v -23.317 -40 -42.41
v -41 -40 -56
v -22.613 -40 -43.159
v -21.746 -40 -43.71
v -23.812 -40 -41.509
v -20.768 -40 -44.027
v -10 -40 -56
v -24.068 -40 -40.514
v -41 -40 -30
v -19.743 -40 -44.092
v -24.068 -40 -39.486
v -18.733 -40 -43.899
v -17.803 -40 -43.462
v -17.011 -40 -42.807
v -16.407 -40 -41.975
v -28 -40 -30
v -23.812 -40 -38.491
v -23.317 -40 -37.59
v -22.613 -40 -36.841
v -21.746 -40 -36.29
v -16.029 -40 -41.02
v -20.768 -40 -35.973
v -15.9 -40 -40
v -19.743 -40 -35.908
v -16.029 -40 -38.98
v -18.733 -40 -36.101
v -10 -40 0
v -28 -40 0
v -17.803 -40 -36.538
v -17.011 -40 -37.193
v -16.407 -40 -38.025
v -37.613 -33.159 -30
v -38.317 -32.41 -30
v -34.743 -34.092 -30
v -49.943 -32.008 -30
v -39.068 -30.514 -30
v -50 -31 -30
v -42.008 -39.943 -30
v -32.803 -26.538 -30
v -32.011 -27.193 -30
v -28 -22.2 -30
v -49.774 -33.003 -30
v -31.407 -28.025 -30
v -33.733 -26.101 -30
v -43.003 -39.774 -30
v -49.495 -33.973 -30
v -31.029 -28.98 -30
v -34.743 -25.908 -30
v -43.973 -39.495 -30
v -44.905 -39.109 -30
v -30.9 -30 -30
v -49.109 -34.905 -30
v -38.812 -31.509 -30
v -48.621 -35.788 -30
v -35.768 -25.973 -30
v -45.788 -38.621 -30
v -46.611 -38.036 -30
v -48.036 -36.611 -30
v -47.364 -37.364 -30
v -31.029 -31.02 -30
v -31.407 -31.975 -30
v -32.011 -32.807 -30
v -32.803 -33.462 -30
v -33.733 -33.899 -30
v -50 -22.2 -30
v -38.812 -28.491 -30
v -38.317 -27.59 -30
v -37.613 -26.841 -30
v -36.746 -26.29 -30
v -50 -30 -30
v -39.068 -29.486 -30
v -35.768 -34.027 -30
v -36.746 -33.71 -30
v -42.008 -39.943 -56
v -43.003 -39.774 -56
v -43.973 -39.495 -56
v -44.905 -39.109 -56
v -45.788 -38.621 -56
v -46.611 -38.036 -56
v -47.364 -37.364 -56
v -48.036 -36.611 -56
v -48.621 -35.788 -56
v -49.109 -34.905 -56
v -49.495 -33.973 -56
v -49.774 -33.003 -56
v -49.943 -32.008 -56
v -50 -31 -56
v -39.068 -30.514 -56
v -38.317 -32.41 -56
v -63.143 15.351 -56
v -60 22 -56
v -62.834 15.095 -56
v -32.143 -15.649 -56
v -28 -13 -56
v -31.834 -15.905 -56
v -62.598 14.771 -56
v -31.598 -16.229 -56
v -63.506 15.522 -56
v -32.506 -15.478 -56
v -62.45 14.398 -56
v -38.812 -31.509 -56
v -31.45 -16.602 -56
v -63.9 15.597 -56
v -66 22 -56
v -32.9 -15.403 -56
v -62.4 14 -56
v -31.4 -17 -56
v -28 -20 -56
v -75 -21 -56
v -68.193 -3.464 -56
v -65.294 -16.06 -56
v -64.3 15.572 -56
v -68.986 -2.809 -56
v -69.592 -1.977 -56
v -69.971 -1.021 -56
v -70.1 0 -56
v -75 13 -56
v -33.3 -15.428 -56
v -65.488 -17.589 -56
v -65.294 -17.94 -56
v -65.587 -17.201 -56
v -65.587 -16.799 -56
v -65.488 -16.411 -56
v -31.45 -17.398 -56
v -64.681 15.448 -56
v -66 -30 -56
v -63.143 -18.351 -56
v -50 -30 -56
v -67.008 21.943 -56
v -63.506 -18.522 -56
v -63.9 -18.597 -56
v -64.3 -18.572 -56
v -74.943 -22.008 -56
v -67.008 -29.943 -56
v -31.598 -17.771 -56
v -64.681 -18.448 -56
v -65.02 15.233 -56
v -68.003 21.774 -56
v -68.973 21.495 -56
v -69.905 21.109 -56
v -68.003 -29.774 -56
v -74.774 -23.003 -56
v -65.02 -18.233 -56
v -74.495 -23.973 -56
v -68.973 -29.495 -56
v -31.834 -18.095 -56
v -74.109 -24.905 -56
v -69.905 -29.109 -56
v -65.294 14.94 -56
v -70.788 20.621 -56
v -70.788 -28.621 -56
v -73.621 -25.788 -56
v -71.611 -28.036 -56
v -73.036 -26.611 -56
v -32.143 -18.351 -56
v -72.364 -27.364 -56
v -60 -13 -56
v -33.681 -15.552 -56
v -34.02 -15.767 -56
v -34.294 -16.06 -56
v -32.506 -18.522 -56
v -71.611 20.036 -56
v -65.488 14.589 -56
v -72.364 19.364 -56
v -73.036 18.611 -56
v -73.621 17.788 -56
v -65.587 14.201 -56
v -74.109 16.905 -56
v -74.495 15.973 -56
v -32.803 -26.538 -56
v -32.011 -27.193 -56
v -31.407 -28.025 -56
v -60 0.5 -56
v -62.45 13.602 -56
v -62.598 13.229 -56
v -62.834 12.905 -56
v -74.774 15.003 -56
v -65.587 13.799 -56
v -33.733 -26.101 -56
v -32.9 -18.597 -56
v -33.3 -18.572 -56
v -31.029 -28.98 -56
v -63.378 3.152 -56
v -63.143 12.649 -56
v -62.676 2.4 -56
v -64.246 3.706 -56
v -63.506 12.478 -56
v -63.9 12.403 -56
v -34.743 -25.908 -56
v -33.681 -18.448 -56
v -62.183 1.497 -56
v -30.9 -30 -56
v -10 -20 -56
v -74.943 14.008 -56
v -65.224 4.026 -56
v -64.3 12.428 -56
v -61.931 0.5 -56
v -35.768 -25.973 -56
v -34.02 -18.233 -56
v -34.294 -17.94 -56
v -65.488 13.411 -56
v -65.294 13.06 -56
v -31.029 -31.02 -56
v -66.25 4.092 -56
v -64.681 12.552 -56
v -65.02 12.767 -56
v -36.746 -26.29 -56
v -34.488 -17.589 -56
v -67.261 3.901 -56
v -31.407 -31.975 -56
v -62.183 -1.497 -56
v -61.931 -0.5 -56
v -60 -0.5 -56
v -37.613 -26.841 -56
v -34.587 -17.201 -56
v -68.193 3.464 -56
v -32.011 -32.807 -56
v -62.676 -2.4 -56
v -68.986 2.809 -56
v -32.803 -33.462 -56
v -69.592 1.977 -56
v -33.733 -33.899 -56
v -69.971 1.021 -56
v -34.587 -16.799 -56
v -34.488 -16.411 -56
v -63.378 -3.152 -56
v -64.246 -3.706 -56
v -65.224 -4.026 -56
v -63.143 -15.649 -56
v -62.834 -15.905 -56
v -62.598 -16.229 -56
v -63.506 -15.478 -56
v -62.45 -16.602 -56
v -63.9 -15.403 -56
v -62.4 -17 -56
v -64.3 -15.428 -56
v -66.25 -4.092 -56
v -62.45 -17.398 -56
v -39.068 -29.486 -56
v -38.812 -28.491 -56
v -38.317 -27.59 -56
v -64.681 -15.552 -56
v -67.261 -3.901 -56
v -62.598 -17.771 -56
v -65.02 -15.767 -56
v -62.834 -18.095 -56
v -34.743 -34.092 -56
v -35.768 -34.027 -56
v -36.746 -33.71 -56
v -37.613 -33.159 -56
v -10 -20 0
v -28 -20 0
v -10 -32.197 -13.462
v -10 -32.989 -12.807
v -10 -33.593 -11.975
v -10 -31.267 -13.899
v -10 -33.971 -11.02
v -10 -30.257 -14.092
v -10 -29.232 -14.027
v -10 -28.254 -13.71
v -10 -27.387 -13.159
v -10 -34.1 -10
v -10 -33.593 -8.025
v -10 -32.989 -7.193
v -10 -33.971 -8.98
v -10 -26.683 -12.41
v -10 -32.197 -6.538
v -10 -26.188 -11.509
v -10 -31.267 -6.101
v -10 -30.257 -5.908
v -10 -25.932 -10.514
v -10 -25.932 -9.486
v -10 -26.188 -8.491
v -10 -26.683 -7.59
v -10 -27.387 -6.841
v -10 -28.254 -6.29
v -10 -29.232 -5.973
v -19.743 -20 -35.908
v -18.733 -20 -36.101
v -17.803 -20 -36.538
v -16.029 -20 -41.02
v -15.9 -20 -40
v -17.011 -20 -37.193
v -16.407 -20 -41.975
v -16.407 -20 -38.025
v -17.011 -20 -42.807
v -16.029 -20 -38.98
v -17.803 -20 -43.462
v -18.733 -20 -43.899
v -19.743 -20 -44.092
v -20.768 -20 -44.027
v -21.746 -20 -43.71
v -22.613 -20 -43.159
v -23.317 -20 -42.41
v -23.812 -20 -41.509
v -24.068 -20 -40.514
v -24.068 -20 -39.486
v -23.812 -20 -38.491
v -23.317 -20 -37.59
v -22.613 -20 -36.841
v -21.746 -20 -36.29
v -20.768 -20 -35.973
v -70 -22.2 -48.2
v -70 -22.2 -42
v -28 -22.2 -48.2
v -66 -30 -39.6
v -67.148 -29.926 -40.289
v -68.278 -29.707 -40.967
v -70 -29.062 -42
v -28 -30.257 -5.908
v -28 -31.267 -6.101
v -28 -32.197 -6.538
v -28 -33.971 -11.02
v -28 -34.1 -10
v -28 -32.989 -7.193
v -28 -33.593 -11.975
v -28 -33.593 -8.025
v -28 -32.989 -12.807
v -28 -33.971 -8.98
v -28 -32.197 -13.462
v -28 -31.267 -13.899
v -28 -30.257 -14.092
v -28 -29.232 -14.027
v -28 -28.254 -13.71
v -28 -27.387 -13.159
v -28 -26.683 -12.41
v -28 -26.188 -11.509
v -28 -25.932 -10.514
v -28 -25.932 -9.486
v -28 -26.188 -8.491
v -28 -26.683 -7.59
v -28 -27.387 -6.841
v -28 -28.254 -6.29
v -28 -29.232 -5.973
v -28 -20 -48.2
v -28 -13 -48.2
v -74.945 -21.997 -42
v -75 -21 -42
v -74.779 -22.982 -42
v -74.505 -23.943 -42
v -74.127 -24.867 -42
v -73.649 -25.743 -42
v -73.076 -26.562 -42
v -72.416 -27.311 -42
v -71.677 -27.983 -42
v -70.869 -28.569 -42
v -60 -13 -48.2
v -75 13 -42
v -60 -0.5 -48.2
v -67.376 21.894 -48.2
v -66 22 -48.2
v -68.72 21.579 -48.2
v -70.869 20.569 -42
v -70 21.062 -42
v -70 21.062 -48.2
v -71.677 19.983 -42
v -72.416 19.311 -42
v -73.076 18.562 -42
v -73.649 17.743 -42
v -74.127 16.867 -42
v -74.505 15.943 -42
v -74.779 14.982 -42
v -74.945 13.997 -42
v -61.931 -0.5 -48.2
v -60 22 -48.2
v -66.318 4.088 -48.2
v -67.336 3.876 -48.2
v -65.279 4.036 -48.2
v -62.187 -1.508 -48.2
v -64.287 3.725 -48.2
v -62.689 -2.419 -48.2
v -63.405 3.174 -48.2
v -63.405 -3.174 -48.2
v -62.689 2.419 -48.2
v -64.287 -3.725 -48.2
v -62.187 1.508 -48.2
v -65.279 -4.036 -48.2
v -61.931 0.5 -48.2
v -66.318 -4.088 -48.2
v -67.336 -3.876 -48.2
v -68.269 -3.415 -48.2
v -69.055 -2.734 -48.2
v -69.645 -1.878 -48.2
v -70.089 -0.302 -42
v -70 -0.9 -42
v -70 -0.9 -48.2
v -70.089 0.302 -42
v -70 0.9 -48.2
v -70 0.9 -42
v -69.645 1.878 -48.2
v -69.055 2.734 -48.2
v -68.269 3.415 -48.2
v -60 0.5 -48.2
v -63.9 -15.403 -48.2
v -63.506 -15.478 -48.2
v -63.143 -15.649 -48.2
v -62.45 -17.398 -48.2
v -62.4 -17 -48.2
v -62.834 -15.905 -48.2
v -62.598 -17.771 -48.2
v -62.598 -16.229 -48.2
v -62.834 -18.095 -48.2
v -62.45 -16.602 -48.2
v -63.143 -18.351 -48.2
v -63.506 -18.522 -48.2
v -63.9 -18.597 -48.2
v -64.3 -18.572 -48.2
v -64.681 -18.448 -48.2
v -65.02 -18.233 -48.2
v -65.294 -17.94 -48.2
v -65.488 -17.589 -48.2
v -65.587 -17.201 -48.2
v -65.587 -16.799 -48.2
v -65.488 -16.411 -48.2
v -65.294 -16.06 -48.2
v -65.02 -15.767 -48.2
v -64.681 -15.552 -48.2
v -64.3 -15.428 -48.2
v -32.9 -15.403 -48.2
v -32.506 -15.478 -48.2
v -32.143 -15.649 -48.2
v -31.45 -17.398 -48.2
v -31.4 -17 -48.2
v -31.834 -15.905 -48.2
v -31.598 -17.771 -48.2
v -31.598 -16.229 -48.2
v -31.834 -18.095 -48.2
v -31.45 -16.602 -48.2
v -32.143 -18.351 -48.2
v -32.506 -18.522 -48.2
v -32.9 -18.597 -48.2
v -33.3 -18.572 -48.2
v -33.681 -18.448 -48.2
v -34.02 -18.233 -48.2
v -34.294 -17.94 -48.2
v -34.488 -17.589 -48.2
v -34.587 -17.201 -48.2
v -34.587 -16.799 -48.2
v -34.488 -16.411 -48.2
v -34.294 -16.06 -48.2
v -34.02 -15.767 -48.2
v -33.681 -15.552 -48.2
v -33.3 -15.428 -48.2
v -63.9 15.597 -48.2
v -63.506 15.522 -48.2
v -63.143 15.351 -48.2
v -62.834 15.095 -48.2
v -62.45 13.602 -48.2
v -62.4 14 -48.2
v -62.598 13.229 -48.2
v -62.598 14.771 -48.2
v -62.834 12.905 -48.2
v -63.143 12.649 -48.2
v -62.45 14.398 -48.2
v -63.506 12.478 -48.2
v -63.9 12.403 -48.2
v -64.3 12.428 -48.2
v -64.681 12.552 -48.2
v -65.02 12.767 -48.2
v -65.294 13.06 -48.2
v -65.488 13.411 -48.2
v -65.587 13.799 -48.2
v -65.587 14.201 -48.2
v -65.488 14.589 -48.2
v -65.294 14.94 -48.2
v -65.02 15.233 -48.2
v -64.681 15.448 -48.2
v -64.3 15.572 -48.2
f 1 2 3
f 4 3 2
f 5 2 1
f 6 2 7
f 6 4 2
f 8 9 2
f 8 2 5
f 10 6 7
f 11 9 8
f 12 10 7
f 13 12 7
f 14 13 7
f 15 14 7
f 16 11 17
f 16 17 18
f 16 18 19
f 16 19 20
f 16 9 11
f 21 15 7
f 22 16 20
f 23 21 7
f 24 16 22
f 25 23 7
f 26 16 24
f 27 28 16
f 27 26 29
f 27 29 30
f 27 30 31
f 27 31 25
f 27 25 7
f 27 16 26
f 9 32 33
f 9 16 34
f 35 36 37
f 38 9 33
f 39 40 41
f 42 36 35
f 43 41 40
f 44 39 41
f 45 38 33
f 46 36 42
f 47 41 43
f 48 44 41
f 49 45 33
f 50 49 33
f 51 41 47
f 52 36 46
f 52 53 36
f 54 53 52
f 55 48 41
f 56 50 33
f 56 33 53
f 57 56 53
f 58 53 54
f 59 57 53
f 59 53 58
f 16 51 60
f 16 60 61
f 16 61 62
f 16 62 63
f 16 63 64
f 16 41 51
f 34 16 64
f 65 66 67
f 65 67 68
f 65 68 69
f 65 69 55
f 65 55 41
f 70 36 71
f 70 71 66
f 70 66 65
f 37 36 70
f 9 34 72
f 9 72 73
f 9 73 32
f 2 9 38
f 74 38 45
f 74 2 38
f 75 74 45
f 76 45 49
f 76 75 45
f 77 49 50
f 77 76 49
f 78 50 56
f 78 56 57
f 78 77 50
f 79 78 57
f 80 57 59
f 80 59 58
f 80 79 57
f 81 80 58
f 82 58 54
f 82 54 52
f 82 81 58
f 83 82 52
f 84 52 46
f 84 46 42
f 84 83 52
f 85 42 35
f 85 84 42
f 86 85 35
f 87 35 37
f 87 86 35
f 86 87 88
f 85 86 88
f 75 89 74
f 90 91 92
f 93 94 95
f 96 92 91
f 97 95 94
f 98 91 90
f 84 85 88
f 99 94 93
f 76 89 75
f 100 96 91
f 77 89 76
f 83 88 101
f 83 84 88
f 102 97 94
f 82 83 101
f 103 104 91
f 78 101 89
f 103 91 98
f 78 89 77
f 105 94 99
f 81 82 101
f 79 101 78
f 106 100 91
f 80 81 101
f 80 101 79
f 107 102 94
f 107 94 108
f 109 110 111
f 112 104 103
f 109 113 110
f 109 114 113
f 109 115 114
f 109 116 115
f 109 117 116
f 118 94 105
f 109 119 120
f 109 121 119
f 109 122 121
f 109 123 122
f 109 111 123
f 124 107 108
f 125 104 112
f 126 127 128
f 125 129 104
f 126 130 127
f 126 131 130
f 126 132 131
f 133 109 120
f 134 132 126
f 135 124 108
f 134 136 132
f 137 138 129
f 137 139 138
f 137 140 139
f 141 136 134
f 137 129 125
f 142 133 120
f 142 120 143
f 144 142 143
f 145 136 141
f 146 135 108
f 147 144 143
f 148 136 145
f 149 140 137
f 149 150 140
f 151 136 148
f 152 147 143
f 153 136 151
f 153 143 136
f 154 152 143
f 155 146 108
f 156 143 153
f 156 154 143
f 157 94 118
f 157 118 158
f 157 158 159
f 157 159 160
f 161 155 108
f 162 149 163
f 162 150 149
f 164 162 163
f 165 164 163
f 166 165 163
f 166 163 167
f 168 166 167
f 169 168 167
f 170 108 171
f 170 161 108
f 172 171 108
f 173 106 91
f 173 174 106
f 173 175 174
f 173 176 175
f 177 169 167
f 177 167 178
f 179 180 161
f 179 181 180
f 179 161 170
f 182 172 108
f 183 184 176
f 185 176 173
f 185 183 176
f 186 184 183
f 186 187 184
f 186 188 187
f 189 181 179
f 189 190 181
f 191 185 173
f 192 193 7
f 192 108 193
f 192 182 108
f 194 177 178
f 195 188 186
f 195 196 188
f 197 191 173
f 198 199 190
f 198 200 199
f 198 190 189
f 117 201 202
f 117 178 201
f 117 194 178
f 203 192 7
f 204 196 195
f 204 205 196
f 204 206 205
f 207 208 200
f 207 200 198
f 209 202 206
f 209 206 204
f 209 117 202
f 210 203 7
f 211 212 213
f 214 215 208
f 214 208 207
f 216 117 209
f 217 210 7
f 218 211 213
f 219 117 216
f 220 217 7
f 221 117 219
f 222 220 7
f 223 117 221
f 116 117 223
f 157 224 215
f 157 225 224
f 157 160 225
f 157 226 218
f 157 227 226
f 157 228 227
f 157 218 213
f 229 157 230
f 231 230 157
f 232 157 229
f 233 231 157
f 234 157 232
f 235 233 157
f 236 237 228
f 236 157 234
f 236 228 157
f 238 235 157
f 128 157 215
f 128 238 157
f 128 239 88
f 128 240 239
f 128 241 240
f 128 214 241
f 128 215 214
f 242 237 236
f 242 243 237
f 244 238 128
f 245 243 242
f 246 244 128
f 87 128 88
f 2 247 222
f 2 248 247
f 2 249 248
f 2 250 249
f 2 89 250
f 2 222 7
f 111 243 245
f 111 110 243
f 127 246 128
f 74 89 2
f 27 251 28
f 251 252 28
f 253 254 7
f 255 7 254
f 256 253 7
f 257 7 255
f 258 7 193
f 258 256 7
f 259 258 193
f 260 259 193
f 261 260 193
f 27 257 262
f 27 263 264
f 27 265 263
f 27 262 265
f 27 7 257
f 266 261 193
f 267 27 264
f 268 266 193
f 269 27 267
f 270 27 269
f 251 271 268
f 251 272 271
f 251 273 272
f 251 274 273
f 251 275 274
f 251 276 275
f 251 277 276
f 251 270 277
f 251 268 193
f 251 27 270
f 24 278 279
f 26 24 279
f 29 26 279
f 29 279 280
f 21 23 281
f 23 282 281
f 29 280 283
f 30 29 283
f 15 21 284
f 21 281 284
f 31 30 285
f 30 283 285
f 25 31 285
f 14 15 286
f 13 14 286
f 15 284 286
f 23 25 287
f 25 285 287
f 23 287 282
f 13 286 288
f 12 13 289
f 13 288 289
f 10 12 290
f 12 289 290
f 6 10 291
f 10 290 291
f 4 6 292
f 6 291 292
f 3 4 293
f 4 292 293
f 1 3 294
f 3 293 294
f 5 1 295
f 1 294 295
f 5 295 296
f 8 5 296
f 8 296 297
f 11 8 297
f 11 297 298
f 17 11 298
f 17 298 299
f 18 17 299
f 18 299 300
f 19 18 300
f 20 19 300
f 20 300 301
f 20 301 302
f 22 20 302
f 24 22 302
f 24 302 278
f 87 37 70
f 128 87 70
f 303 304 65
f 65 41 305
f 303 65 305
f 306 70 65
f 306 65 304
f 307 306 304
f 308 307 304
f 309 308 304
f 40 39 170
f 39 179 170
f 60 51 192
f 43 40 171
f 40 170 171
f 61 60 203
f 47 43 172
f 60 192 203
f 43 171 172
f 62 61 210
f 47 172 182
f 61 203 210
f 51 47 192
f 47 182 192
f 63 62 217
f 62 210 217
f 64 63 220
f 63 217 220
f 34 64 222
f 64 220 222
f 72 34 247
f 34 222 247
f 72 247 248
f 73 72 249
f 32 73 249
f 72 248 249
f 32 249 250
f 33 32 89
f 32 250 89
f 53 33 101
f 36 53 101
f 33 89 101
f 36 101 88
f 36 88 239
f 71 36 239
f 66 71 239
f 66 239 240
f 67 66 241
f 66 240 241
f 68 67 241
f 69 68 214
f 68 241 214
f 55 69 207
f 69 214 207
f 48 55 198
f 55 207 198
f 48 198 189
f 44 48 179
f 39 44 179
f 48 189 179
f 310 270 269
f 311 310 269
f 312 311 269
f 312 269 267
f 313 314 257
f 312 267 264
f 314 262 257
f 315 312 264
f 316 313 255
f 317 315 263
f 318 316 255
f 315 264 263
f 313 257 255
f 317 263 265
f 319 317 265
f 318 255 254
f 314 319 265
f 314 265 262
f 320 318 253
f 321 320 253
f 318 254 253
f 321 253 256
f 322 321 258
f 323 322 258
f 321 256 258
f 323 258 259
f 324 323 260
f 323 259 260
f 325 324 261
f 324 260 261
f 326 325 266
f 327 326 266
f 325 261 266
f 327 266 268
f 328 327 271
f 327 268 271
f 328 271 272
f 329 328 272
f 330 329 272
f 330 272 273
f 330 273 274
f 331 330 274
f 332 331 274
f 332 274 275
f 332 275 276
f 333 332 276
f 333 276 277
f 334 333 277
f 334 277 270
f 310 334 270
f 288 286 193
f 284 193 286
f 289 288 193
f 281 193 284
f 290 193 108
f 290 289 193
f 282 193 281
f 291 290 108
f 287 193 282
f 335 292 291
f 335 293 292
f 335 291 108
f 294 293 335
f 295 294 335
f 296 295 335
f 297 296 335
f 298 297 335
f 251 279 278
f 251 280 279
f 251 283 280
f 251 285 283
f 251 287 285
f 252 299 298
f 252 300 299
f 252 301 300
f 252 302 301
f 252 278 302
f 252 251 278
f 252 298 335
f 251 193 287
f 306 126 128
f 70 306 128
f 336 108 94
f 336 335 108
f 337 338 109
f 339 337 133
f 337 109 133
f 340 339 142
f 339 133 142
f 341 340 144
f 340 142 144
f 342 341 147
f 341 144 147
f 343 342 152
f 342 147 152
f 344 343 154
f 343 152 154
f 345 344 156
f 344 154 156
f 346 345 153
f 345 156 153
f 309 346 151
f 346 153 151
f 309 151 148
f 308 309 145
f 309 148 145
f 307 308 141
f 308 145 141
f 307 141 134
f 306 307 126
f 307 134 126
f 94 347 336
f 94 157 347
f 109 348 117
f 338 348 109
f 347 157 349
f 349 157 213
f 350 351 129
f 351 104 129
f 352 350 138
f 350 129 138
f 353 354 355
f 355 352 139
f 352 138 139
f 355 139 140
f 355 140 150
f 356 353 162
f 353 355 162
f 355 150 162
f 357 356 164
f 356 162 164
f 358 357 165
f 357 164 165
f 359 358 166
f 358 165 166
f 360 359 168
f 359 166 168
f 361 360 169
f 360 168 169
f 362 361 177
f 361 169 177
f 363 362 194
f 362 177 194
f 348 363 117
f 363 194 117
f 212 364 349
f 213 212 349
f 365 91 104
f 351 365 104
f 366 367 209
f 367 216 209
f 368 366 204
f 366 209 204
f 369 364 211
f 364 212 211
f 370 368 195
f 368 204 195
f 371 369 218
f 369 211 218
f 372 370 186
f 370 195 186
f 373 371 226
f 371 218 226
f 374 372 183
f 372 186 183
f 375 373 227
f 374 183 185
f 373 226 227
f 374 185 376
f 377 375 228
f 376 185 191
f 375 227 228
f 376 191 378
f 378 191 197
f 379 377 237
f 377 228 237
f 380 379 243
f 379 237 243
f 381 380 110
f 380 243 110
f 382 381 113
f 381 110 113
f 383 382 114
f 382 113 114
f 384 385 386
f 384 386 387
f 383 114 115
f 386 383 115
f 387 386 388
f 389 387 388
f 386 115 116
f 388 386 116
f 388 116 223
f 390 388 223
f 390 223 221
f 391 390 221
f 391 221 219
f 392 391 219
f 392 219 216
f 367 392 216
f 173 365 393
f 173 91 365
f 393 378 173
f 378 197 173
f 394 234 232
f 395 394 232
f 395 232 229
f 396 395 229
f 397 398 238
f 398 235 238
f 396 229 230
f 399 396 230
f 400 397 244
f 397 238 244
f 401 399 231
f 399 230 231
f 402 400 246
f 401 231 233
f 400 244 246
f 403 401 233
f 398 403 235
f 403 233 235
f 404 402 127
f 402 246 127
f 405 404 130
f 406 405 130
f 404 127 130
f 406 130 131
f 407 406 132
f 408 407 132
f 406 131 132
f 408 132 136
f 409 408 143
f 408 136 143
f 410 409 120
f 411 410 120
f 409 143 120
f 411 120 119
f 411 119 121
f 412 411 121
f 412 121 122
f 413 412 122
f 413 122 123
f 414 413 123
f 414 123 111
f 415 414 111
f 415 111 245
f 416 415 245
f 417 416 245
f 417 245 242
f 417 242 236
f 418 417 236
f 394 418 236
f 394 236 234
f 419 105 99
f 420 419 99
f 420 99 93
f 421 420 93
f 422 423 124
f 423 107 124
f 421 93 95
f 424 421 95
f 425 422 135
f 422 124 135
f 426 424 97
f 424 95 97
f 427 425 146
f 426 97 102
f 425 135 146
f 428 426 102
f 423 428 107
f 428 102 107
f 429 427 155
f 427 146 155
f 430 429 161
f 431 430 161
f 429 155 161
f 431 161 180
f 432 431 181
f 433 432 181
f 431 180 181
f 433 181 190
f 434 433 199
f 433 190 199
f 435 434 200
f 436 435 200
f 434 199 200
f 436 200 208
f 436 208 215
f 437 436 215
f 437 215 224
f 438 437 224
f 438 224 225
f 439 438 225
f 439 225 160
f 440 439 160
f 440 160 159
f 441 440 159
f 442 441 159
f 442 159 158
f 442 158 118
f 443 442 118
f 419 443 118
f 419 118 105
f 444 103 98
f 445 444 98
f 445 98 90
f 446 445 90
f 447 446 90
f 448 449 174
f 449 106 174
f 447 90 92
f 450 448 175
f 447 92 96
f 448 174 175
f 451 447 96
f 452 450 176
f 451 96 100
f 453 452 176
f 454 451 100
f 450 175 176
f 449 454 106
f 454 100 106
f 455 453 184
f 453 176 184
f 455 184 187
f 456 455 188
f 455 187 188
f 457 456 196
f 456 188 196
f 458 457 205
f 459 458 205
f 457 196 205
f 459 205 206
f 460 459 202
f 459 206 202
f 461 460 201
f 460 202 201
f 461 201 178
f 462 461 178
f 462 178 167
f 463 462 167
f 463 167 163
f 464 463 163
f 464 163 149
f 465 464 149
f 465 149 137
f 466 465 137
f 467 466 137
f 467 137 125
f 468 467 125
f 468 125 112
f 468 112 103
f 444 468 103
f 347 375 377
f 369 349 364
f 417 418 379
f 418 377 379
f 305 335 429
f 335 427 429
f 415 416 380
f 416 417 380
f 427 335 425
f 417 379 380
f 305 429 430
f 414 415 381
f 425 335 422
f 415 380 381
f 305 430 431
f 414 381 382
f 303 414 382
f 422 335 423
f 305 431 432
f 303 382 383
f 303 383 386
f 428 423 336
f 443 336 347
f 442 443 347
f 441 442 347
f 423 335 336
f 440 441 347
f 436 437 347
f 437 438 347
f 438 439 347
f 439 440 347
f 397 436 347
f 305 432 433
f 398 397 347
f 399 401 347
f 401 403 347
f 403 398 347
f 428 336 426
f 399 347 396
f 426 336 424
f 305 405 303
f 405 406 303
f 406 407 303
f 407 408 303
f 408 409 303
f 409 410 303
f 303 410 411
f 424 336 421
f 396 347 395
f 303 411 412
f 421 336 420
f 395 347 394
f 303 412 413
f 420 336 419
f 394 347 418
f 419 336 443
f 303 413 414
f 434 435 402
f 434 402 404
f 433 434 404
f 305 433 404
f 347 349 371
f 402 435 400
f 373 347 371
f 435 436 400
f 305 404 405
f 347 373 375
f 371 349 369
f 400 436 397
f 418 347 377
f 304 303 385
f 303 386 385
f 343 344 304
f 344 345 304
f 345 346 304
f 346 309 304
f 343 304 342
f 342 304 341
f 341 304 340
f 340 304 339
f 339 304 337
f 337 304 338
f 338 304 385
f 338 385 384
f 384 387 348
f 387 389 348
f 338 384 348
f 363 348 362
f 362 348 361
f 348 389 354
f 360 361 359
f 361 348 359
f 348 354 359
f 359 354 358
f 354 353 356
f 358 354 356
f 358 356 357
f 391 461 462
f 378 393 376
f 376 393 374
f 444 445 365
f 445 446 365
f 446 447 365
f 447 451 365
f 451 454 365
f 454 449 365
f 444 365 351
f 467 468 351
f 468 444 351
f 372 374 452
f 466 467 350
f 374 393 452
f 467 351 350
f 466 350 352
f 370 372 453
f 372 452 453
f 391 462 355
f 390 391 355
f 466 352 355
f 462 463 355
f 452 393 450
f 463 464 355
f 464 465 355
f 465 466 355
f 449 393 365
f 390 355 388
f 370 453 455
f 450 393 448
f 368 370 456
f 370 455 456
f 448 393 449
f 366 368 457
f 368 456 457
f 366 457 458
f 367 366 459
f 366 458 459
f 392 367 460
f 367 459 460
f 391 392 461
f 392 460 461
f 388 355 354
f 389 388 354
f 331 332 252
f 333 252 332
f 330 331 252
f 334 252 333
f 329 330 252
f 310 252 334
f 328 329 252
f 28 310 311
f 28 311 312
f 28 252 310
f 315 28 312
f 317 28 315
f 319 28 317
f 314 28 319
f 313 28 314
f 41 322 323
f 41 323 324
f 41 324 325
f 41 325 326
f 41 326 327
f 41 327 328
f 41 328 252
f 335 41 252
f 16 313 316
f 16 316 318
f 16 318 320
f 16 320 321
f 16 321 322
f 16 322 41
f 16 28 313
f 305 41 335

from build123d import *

# Parameters (mm, degrees)
PAD_DEPTH       = 56
SKETCH001_W     = 42
SKETCH001_H     = 48.2
POCKET_DEPTH    = 44.2
SKETCH002_R     = 1.6
SKETCH002_R_2   = 4.1
POCKET001_DEPTH = 56.001
SKETCH003_R     = 4.1
POCKET002_DEPTH = 20.001
SKETCH004_W     = 5
SKETCH004_H     = 42
POCKET003_DEPTH = 62.001
POCKET004_DEPTH = 62.001
SKETCH006_R     = 4.1
POCKET005_DEPTH = 65.001
FILLET_R        = 9


with BuildPart() as part:
    # Sketch → Pad (new body)
    with BuildSketch(Plane(origin=(0, 0, 0), x_dir=(1, 0, 0), z_dir=(0, 0, -1))):
        Polygon((-50, 40), (-10, 40), (-10, 20), (-28, 20), (-28, -22), (-75, -22), (-75, 30), (-50, 30), align=None)
    extrude(amount=PAD_DEPTH)

    # Sketch001 → Pocket (cut)
    with BuildSketch(Plane(origin=(0, 22, 0), x_dir=(1, 0, 0), z_dir=(0, 1, 0))):
        with Locations((-49, 24.1)):
            Rectangle(SKETCH001_W, SKETCH001_H)
    extrude(amount=-POCKET_DEPTH, mode=Mode.SUBTRACT)

    # Sketch002 → Pocket001 (cut, through all)
    with BuildSketch(Plane(origin=(0, 0, -56), x_dir=(1, 0, 0), z_dir=(0, 0, -1))):
        with Locations((-33, 17)):
            Circle(SKETCH002_R)
        with Locations((-64, 17)):
            Circle(SKETCH002_R)
        with Locations((-64, -14)):
            Circle(SKETCH002_R)
        with Locations((-35, 30)):
            Circle(SKETCH002_R_2)
        with BuildLine():
            Line((-60, 13), (-28, 13))
            Line((-28, 13), (-28, -22))
            Line((-60, -22), (-28, -22))
            Line((-60, -22), (-60, -0.5))
            Line((-61.930602, -0.5), (-60, -0.5))
            ThreePointArc((-61.930602, 0.5), (-70.1, 0), (-61.930602, -0.5))
            Line((-61.930602, 0.5), (-60, 0.5))
            Line((-60, 13), (-60, 0.5))
        make_face()
    extrude(amount=-POCKET001_DEPTH, mode=Mode.SUBTRACT)

    # Sketch003 → Pocket002 (cut, through all)
    with BuildSketch(Plane(origin=(0, -20, 0), x_dir=(1, 0, 0), z_dir=(0, 1, 0))):
        with Locations((-20, 40)):
            Circle(SKETCH003_R)
    extrude(amount=-POCKET002_DEPTH, mode=Mode.SUBTRACT)

    # Sketch004 → Pocket003 (cut, through all)
    with BuildSketch(Plane(origin=(0, 22, 0), x_dir=(1, 0, 0), z_dir=(0, 1, 0))):
        with Locations((-72.5, 21)):
            Rectangle(SKETCH004_W, SKETCH004_H)
    extrude(amount=-POCKET003_DEPTH, mode=Mode.SUBTRACT)

    # Sketch005 → Pocket004 (cut, through all)
    with BuildSketch(Plane(origin=(0, -40, 0), x_dir=(-1, 0, 0), z_dir=(0, -1, 0))):
        Polygon((28, 0), (28, 30), (50, 30), (70, 42), (70, 0), align=None)
    extrude(amount=-POCKET004_DEPTH, mode=Mode.SUBTRACT)

    # Sketch006 → Pocket005 (cut, through all)
    with BuildSketch(Plane(origin=(-10, 0, 0), x_dir=(0, -1, 0), z_dir=(1, 0, 0))):
        with Locations((30, 10)):
            Circle(SKETCH006_R)
    extrude(amount=-POCKET005_DEPTH, mode=Mode.SUBTRACT)

    # Fillet
    fillet_edges = [part.edges().sort_by_distance(p)[0] for p in [
        (-75, 22, -49),
        (-75, -30, -49),
        (-50, -40, -43),
    ]]
    fillet(fillet_edges, radius=FILLET_R)


solid = part.part
